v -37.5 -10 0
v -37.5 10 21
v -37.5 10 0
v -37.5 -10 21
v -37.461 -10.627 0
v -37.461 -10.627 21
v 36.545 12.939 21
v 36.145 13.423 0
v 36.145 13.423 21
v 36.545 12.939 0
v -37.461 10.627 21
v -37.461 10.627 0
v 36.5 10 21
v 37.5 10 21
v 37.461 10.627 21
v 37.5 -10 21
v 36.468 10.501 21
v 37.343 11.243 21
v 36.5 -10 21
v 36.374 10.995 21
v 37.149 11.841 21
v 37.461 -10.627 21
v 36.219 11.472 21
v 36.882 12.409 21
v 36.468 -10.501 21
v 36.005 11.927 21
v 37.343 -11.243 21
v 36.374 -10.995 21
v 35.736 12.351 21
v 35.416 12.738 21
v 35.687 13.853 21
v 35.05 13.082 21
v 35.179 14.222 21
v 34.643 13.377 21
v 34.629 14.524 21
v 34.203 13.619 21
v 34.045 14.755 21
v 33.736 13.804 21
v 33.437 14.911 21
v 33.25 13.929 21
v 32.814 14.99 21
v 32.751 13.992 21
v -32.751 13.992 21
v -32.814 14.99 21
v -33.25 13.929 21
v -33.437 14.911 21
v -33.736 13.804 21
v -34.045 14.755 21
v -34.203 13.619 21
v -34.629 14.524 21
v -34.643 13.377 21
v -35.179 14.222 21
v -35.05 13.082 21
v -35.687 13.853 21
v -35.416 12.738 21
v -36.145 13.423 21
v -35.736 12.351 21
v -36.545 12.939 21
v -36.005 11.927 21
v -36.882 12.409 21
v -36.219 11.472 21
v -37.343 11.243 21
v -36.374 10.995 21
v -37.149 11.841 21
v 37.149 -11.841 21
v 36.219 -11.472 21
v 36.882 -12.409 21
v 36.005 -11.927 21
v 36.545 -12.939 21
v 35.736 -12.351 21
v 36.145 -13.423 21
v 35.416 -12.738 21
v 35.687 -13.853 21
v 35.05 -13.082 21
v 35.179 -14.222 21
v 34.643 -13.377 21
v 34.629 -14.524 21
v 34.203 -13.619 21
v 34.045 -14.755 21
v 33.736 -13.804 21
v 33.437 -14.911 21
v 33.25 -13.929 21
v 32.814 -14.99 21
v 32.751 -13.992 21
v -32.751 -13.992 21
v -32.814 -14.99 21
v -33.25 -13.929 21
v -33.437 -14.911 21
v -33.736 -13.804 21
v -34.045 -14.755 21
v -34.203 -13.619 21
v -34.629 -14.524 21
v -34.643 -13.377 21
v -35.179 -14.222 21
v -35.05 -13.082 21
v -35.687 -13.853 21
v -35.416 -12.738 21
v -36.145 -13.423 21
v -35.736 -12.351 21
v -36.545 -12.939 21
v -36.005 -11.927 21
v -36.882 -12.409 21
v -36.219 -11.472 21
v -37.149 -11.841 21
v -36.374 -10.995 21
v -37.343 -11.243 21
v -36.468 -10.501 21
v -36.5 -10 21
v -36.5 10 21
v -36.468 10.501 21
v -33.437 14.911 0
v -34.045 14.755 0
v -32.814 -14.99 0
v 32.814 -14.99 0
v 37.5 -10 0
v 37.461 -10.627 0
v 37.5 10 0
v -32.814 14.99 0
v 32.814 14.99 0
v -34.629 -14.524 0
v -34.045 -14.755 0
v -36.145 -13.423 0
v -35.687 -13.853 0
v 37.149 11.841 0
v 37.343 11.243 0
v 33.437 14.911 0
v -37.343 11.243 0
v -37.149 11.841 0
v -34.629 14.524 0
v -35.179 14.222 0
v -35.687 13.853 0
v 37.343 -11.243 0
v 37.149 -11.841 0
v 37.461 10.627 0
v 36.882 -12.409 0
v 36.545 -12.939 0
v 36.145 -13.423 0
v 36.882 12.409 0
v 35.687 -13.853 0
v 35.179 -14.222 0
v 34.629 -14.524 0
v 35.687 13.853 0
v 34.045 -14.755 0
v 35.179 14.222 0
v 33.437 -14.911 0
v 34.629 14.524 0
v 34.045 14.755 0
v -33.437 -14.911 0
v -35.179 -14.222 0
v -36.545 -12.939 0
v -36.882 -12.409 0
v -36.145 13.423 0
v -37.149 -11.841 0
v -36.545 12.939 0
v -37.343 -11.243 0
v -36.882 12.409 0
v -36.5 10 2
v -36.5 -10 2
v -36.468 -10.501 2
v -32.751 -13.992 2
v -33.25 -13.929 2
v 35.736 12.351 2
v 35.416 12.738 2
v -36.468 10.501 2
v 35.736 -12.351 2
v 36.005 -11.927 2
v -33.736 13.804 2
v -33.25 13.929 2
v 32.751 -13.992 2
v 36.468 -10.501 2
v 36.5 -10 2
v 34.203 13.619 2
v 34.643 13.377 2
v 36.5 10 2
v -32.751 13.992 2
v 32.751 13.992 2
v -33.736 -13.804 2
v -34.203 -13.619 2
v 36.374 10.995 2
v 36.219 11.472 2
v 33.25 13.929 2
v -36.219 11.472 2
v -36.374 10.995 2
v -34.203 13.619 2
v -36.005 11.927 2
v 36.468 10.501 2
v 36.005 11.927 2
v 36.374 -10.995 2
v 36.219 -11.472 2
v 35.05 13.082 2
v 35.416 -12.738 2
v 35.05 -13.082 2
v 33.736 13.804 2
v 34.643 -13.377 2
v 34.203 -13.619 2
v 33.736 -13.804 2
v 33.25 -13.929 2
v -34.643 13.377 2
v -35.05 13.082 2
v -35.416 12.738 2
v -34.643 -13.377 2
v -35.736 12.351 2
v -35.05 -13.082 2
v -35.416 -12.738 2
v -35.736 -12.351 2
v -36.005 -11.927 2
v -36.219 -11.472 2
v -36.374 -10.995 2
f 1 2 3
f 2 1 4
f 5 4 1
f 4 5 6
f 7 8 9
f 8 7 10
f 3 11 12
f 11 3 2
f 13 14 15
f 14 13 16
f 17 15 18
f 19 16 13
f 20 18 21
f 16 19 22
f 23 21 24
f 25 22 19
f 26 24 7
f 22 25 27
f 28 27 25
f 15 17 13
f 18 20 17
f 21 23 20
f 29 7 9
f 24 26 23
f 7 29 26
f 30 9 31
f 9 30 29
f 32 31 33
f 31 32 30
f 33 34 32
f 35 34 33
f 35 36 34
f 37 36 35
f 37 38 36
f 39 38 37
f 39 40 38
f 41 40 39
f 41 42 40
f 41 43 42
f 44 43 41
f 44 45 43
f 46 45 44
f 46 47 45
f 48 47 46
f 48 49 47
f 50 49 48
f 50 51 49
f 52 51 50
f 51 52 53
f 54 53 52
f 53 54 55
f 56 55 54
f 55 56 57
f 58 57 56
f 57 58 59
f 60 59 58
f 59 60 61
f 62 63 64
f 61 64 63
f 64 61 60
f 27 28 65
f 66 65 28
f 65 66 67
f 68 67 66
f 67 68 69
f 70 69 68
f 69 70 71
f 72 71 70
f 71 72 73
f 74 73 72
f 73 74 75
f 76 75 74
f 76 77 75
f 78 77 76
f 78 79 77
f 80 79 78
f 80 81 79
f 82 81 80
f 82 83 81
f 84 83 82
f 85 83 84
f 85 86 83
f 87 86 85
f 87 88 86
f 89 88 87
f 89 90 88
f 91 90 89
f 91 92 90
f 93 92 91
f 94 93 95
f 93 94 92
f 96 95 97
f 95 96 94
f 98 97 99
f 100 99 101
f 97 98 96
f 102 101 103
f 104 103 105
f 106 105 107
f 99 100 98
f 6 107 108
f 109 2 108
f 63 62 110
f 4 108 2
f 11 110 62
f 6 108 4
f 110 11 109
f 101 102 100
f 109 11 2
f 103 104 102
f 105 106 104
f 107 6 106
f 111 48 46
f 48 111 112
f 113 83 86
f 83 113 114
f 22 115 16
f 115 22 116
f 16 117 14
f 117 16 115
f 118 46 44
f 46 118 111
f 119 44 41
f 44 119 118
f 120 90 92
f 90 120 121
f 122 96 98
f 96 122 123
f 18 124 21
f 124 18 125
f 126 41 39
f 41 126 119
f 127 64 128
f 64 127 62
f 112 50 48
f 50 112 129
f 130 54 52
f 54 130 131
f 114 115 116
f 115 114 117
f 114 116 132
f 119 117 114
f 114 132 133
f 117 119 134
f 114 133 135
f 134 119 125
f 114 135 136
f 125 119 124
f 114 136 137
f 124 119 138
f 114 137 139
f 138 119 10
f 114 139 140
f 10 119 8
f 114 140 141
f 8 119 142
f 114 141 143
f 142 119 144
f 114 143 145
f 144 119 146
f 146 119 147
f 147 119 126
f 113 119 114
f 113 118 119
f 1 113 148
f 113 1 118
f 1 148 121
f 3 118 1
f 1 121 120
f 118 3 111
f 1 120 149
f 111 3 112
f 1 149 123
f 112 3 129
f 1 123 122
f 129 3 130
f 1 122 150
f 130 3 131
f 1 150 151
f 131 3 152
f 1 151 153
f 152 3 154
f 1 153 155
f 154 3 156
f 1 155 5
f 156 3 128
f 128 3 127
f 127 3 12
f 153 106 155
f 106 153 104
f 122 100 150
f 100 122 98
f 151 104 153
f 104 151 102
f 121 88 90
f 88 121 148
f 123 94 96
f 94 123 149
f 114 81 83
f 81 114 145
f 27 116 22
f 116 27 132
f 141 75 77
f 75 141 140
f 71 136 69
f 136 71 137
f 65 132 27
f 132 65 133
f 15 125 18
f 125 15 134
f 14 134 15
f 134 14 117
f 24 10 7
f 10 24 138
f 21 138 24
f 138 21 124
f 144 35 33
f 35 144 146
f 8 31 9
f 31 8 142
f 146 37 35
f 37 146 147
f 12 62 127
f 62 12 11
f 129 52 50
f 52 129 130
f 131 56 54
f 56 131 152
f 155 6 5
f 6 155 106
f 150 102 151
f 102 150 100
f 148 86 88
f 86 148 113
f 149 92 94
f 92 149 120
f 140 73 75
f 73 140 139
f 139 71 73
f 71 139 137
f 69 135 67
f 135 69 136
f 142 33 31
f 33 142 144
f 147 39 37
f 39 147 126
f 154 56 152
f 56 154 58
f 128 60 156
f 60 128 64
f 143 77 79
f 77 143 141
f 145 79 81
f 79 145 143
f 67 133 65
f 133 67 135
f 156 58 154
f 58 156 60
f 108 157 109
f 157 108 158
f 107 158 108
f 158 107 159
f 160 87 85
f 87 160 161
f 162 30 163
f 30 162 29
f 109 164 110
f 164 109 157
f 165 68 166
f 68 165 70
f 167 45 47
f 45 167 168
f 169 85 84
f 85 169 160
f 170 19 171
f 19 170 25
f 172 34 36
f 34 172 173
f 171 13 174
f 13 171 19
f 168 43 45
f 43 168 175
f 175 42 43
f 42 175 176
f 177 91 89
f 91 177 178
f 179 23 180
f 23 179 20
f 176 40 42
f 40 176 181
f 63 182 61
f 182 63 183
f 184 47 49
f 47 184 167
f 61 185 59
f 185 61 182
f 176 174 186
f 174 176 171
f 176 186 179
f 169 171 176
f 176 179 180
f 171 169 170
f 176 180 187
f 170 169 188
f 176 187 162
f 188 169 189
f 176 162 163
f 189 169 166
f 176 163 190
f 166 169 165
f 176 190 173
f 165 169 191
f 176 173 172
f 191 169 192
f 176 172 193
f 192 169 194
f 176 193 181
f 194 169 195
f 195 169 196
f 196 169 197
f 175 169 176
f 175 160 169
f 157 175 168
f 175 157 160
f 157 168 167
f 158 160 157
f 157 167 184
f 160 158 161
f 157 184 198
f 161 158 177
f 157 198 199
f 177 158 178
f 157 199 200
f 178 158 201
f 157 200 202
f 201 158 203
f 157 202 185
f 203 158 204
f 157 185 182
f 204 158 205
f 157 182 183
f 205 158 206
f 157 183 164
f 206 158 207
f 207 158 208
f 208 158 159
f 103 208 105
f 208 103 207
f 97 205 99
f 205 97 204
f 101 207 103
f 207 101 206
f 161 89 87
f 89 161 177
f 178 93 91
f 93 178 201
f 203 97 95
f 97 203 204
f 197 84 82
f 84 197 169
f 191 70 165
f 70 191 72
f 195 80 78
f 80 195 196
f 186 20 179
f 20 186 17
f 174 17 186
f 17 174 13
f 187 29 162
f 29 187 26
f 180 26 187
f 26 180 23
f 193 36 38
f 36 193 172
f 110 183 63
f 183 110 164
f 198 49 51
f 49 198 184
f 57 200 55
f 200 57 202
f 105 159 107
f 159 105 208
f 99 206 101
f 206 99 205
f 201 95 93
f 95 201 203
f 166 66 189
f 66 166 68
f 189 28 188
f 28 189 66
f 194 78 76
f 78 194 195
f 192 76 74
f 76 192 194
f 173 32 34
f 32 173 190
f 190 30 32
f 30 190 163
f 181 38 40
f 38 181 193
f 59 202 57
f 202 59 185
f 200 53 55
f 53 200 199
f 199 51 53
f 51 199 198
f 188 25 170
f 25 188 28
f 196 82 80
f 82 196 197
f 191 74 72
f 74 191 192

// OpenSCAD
$fn = 50;


difference() {
	union() {
		hull() {
			translate(v = [-32.5000000000, 10.0000000000, 0]) {
				cylinder(h = 21, r = 5);
			}
			translate(v = [32.5000000000, 10.0000000000, 0]) {
				cylinder(h = 21, r = 5);
			}
			translate(v = [-32.5000000000, -10.0000000000, 0]) {
				cylinder(h = 21, r = 5);
			}
			translate(v = [32.5000000000, -10.0000000000, 0]) {
				cylinder(h = 21, r = 5);
			}
		}
	}
	union() {
		translate(v = [0, 0, 2]) {
			#hull() {
				translate(v = [-32.5000000000, 10.0000000000, 0]) {
					cylinder(h = 19, r = 4);
				}
				translate(v = [32.5000000000, 10.0000000000, 0]) {
					cylinder(h = 19, r = 4);
				}
				translate(v = [-32.5000000000, -10.0000000000, 0]) {
					cylinder(h = 19, r = 4);
				}
				translate(v = [32.5000000000, -10.0000000000, 0]) {
					cylinder(h = 19, r = 4);
				}
			}
		}
	}
}
